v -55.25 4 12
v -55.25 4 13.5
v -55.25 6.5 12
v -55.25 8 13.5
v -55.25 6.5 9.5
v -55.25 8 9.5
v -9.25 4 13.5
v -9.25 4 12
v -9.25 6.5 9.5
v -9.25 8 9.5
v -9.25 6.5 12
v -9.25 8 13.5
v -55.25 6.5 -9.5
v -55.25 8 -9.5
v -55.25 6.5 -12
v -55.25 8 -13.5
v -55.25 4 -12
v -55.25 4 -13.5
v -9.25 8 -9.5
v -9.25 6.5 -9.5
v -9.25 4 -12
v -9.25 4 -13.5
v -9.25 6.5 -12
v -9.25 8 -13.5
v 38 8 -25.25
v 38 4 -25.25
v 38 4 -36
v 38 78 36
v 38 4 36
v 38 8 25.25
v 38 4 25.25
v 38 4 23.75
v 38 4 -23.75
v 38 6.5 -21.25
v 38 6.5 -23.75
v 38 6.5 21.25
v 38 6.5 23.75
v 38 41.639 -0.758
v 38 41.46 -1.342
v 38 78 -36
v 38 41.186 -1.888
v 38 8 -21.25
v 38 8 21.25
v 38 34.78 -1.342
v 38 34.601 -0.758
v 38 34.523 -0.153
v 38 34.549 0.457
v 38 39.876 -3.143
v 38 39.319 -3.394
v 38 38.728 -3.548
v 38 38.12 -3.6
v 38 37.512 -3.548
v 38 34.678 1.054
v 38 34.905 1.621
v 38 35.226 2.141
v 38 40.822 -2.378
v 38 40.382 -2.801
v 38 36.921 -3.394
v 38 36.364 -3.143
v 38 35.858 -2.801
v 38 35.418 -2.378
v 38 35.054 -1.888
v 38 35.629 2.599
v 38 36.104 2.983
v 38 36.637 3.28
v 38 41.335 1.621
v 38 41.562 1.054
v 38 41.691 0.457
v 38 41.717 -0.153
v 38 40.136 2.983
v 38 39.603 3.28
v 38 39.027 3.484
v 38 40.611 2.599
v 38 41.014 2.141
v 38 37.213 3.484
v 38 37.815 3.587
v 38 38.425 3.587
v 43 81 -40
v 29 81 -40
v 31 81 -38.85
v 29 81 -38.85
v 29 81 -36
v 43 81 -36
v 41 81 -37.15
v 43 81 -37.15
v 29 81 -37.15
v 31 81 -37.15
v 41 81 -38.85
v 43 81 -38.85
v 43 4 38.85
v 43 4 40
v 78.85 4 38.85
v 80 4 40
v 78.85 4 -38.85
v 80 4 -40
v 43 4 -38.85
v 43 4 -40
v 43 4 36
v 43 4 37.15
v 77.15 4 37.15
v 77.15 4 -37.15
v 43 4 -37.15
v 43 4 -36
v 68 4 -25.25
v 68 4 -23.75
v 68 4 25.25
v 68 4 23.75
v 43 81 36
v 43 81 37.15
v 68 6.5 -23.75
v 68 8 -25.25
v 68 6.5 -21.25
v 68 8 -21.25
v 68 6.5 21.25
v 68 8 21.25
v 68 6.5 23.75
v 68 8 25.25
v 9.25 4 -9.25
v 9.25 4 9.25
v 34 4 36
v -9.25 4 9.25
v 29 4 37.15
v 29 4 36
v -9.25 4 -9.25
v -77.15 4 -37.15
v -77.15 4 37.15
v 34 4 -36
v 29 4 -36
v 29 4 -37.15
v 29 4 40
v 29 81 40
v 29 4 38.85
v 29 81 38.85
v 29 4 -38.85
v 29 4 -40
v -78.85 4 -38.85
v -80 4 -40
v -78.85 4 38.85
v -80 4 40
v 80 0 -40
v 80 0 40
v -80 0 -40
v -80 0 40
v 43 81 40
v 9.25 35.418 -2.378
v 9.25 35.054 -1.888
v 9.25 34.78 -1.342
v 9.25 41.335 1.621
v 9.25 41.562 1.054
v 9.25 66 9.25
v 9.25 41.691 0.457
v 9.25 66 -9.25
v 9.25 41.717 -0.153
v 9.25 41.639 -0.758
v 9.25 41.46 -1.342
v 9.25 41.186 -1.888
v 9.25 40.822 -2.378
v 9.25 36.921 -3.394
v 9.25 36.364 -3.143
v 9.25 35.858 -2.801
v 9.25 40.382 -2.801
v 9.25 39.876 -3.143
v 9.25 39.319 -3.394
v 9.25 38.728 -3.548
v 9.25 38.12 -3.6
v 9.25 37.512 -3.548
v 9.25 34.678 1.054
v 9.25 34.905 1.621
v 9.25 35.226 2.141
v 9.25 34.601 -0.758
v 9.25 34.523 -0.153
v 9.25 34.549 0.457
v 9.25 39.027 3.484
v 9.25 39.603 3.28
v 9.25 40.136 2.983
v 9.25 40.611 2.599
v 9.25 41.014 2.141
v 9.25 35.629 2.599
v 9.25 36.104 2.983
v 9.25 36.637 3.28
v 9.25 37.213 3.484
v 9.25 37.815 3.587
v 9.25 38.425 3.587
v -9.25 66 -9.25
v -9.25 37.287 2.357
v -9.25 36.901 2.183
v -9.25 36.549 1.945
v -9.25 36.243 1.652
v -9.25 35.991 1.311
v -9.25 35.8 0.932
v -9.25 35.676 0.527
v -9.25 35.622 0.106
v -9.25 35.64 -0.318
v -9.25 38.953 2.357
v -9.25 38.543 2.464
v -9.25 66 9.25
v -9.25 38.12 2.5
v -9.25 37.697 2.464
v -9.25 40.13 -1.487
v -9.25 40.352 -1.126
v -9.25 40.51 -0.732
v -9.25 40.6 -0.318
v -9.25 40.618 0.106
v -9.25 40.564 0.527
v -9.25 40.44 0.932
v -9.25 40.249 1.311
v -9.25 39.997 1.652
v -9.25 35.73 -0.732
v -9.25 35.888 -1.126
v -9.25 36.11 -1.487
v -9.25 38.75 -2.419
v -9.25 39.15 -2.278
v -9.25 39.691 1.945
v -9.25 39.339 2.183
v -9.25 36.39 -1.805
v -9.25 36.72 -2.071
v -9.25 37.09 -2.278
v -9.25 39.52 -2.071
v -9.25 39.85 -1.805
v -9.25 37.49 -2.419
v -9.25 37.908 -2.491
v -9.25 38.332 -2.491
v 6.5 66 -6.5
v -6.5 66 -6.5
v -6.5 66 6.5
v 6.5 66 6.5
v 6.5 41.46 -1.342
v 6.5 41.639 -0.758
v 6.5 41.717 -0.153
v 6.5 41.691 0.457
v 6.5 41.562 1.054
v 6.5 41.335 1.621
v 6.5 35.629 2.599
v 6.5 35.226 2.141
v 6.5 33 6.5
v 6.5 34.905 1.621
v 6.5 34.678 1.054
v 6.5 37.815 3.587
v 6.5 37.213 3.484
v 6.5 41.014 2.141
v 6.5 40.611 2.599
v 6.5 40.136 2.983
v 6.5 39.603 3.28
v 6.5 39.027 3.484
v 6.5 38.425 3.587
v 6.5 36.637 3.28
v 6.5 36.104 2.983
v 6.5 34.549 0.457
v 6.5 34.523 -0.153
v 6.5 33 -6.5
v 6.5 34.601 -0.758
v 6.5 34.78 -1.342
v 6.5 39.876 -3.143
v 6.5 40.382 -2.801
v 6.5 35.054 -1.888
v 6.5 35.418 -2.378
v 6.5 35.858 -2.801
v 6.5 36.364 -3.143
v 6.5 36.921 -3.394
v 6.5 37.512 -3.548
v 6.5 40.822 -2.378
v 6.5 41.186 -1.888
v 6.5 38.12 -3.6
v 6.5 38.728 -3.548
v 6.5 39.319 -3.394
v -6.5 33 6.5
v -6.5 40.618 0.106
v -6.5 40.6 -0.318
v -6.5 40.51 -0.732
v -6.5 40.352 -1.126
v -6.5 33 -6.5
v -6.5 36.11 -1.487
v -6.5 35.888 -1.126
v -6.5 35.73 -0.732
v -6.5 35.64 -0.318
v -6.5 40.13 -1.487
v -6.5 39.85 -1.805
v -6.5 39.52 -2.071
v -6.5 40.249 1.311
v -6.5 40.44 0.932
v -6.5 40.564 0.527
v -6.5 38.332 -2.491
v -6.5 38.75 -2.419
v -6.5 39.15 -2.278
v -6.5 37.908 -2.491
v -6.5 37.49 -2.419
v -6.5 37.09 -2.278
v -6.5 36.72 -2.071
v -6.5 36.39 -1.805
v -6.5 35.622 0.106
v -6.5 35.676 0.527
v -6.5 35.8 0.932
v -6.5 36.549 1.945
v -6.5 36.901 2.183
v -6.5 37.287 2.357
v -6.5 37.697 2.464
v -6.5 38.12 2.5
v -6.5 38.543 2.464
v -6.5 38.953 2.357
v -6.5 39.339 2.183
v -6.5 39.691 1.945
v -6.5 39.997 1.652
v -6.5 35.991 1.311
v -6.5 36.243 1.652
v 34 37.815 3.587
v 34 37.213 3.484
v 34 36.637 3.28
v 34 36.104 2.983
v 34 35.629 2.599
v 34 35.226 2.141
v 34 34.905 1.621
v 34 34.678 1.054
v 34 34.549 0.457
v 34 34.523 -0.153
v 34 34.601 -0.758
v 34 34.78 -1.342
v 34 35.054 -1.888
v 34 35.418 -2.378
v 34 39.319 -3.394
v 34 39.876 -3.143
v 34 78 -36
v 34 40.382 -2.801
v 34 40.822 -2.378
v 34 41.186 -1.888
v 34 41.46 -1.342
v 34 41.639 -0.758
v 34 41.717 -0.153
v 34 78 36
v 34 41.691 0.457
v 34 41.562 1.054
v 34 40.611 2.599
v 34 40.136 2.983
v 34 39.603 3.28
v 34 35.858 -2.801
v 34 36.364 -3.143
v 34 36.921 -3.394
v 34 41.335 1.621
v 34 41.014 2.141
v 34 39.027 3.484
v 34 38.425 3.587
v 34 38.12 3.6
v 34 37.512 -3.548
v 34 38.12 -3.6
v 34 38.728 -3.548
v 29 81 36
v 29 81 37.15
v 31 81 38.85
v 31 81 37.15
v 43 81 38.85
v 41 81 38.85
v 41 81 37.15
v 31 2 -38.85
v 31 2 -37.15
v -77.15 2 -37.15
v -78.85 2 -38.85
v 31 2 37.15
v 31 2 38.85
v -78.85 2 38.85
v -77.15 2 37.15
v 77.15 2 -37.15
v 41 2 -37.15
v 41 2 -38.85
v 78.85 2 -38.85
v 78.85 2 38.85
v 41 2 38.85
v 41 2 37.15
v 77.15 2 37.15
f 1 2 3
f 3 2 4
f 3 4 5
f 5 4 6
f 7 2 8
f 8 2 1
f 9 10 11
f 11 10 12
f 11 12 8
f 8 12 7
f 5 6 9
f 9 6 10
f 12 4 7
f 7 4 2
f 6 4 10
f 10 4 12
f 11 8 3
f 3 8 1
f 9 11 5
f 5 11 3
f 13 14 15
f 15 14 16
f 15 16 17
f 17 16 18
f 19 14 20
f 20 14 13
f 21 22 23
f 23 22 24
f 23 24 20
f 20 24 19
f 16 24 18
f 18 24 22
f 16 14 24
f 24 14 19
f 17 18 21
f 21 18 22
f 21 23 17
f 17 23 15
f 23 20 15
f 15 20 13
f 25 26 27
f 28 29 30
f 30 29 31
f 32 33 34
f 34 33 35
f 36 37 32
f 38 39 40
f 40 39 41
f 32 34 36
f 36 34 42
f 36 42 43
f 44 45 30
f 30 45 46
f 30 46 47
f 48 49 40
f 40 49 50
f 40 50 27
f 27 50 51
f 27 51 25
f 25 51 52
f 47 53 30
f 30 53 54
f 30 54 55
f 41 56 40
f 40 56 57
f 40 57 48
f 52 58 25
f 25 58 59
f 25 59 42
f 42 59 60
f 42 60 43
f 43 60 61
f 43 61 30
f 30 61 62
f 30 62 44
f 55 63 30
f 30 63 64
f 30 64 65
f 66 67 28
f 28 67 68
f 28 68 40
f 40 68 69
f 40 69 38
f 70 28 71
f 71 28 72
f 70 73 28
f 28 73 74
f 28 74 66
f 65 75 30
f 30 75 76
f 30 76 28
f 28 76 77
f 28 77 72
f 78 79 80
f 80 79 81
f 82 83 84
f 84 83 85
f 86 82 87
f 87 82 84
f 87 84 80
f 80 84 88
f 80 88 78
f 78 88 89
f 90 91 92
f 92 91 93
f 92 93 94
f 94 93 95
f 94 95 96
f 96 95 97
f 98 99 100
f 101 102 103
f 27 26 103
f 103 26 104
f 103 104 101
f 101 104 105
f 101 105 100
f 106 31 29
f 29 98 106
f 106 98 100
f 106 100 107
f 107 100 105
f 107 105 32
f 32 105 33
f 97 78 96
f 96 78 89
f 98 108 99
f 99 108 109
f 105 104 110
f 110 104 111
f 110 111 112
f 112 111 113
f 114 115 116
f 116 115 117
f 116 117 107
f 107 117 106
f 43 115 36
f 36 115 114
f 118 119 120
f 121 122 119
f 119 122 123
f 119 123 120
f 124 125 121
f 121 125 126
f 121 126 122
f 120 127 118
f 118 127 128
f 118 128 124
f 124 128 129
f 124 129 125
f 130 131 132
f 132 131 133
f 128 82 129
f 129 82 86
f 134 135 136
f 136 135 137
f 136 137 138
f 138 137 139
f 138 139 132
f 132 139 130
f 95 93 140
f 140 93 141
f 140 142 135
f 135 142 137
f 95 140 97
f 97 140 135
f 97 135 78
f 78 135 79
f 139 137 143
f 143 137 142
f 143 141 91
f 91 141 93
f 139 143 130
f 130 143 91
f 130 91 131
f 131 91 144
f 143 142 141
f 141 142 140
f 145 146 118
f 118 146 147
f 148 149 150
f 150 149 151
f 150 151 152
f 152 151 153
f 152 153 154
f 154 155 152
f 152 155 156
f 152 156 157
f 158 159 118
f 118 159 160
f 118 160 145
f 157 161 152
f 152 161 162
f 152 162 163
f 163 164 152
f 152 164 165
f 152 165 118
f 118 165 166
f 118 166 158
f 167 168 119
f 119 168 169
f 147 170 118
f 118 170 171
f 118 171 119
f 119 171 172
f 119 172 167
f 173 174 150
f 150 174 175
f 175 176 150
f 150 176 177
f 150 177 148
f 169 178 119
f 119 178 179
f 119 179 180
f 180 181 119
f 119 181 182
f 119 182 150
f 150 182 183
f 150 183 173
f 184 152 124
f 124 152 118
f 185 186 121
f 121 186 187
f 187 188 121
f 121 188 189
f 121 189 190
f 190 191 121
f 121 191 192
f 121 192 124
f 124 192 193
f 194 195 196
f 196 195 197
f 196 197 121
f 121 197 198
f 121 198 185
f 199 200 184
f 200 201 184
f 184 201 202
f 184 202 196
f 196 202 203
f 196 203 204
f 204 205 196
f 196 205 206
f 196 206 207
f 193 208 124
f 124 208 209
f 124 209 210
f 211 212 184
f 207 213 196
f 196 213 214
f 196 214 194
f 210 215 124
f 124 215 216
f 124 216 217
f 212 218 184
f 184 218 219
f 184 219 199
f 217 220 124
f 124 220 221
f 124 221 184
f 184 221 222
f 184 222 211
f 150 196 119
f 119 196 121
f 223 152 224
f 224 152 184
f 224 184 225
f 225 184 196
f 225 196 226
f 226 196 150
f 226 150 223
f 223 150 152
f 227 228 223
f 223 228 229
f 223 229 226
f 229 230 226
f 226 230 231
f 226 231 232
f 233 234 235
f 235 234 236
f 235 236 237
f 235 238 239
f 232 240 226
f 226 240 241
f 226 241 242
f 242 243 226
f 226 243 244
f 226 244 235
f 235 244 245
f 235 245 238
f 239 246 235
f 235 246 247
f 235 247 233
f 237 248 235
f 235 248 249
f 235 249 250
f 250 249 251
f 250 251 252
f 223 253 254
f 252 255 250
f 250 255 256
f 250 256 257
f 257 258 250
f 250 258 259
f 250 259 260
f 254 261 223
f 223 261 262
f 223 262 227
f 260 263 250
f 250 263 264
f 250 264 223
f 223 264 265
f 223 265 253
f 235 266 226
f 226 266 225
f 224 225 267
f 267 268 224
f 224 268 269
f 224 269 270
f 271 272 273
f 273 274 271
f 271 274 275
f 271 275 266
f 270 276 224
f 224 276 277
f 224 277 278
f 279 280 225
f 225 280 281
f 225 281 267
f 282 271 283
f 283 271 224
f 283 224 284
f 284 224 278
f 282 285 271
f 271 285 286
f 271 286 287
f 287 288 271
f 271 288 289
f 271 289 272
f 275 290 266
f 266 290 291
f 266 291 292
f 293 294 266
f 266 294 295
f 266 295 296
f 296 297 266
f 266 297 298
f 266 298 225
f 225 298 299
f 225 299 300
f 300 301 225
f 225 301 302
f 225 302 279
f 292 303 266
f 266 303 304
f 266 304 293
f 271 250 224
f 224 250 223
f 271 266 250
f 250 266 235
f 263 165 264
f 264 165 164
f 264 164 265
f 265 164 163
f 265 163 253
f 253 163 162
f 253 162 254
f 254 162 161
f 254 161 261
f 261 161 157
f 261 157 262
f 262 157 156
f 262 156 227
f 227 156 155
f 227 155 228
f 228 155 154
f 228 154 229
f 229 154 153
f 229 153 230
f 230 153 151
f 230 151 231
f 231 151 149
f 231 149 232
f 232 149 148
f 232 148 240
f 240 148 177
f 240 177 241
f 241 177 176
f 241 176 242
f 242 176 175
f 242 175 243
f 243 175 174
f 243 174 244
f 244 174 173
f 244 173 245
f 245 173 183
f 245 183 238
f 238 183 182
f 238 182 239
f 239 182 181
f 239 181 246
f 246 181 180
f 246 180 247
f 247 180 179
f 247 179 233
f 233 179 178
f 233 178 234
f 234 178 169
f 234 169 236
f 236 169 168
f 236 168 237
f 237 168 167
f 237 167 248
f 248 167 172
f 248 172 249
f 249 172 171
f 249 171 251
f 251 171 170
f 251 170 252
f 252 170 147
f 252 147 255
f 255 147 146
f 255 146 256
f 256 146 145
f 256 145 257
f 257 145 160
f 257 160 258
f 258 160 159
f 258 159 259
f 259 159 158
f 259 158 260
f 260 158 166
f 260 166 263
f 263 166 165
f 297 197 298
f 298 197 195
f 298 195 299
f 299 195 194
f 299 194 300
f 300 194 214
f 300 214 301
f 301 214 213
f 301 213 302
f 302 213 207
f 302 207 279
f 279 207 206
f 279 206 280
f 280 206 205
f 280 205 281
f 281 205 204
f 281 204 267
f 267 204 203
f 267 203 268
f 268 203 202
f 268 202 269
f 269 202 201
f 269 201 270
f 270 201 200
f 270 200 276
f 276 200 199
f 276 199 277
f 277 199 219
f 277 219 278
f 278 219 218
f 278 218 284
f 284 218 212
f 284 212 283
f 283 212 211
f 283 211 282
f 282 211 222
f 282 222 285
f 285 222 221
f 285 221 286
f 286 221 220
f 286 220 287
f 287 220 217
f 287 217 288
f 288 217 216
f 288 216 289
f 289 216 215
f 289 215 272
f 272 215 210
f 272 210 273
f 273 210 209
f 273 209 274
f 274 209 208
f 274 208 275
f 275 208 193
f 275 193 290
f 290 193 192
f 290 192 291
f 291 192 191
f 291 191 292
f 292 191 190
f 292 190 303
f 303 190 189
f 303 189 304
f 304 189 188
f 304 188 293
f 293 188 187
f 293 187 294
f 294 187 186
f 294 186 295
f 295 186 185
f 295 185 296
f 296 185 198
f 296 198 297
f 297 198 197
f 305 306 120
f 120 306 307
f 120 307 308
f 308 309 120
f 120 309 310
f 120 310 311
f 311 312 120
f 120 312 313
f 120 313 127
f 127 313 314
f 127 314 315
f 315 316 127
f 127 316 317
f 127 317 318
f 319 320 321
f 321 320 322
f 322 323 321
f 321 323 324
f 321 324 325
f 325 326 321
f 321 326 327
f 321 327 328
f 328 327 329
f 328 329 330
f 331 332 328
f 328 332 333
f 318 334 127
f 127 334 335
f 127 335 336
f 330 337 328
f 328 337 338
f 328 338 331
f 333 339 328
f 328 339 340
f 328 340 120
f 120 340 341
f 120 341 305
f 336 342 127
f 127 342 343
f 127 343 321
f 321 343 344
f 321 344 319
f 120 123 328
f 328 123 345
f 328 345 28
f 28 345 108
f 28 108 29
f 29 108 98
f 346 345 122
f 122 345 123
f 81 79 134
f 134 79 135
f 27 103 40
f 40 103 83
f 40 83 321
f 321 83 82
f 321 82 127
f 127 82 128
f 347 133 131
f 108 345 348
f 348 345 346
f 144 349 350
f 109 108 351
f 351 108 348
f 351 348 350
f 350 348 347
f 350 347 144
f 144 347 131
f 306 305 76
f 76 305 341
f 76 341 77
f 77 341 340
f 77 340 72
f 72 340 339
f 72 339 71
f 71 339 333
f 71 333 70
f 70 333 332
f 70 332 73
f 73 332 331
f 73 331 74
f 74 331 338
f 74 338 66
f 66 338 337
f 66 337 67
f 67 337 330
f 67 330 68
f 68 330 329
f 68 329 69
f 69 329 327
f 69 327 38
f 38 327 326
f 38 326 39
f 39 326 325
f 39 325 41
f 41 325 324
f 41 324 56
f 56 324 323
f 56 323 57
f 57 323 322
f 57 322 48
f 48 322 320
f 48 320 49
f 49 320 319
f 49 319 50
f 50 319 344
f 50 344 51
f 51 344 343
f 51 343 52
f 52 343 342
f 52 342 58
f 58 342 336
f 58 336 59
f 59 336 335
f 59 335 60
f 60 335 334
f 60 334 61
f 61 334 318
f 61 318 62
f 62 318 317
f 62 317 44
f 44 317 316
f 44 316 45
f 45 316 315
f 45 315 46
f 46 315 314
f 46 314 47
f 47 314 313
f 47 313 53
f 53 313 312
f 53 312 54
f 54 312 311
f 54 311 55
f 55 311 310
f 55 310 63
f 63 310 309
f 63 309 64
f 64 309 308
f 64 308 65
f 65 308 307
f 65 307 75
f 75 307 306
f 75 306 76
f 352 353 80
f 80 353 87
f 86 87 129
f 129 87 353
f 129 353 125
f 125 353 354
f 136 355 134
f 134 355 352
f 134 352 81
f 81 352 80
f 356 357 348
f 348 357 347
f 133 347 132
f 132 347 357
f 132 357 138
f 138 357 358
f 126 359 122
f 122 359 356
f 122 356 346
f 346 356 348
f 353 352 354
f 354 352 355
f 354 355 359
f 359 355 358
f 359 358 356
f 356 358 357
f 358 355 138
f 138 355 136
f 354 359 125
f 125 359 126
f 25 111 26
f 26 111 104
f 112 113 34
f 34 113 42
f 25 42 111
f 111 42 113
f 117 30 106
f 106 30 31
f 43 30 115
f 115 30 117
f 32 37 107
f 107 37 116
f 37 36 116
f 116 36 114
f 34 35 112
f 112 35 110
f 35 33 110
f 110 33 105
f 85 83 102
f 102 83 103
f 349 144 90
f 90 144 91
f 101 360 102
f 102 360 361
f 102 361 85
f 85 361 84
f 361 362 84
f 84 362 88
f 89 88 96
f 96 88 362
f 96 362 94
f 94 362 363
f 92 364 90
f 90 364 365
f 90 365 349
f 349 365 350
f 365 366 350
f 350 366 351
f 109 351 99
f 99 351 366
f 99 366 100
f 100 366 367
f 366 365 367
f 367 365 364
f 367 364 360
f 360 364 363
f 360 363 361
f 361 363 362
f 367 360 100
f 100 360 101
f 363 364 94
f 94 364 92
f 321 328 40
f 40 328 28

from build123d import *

# Parameters (mm, degrees)
IZIM1_W                        = 160
IZIM1_H                        = 80
Y_KSEKLIK_EKSTR_ZYON1_DEPTH    = 4
IZIM2_W                        = 18.5
IZIM2_H                        = 18.5
Y_KSEKLIK_EKSTR_ZYON2_DEPTH    = 62
IZIM3_W                        = 13
IZIM3_H                        = 13
KES_EKSTR_ZYON1_DEPTH          = 33
IZIM4_R                        = 3.6
KES_EKSTR_ZYON3_DEPTH          = 9.161851858
IZIM6_R                        = 2.5
KES_EKSTR_ZYON4_DEPTH          = 35
IZIM10_W                       = 5
IZIM10_H                       = 4
Y_KSEKLIK_EKSTR_ZYON5_DEPTH    = 77
IZIM11_R                       = 3.6
KES_EKSTR_ZYON6_DEPTH          = 5
IZIM12_W                       = 2
IZIM12_H                       = 1.7
KES_EKSTR_ZYON7_DEPTH          = 79
IZIM13_W                       = 106.15
IZIM13_H                       = 1.7
IZIM13_W_2                     = 1.7
IZIM13_H_2                     = 74.3
KES_EKSTR_ZYON8_DEPTH          = 2
IZIM14_W                       = 46
IZIM14_H                       = 4
Y_KSEKLIK_EKSTR_ZYON13_DEPTH   = 4
Y_KSEKLIK_EKSTR_ZYON13_2_DEPTH = 4
IZIM15_W                       = 2.5
IZIM15_H                       = 2.5
KES_EKSTR_ZYON9_DEPTH          = 46
IZIM16_W                       = 30
IZIM16_H                       = 4
Y_KSEKLIK_EKSTR_ZYON14_DEPTH   = 4
IZIM17_W                       = 2.5
IZIM17_H                       = 2.5
KES_EKSTR_ZYON10_DEPTH         = 30
IZIM18_W                       = 5
IZIM18_H                       = 4
Y_KSEKLIK_EKSTR_ZYON15_DEPTH   = 77
IZIM20_W                       = 2
IZIM20_H                       = 1.7
KES_EKSTR_ZYON11_DEPTH         = 79
IZIM21_W                       = 34.15
IZIM21_H                       = 1.7
IZIM21_W_2                     = 1.7
IZIM21_H_2                     = 74.3
KES_EKSTR_ZYON12_DEPTH         = 2
IZIM22_W                       = 4
IZIM22_H                       = 72
KES_EKSTR_ZYON13_DEPTH         = 3


with BuildPart() as part:
    # Çizim1 → Yükseklik-Ekstrüzyon1 (new body)
    with BuildSketch(Plane(origin=(0, 0, 0), x_dir=(1, 0, 0), z_dir=(0, 1, 0))):
        Rectangle(IZIM1_W, IZIM1_H)
    extrude(amount=Y_KSEKLIK_EKSTR_ZYON1_DEPTH)

    # Çizim2 → Yükseklik-Ekstrüzyon2 (add)
    with BuildSketch(Plane(origin=(0, 4, 0), x_dir=(1, 0, 0), z_dir=(0, 1, 0))):
        Rectangle(IZIM2_W, IZIM2_H)
    extrude(amount=Y_KSEKLIK_EKSTR_ZYON2_DEPTH)

    # Çizim3 → Kes-Ekstrüzyon1 (cut)
    with BuildSketch(Plane(origin=(0, 66, 0), x_dir=(1, 0, 0), z_dir=(0, 1, 0))):
        Rectangle(IZIM3_W, IZIM3_H)
    extrude(amount=-KES_EKSTR_ZYON1_DEPTH, mode=Mode.SUBTRACT)

    # Çizim4 → Kes-Ekstrüzyon3 (cut)
    with BuildSketch(Plane(origin=(9.25, 0, 0), x_dir=(0, 0, -1), z_dir=(1, 0, 0))):
        with Locations((0, 38.12)):
            Circle(IZIM4_R)
    extrude(amount=-KES_EKSTR_ZYON3_DEPTH, mode=Mode.SUBTRACT)

    # Çizim6 → Kes-Ekstrüzyon4 (cut)
    with BuildSketch(Plane.ZY.offset(9.25)):
        with Locations((0, 38.12)):
            Circle(IZIM6_R)
    extrude(amount=-KES_EKSTR_ZYON4_DEPTH, mode=Mode.SUBTRACT)

    # Çizim10 → Yükseklik-Ekstrüzyon5 (add)
    with BuildSketch(Plane(origin=(0, 4, 0), x_dir=(1, 0, 0), z_dir=(0, 1, 0))):
        Polygon((34, -40), (38, -40), (38, 40), (34, 40), (34, 36), (34, -36), align=None)
        with Locations((31.5, 38)):
            Rectangle(IZIM10_W, IZIM10_H)
        with Locations((31.5, -38)):
            Rectangle(IZIM10_W, IZIM10_H)
    extrude(amount=Y_KSEKLIK_EKSTR_ZYON5_DEPTH)

    # Çizim11 → Kes-Ekstrüzyon6 (cut)
    with BuildSketch(Plane(origin=(38, 0, 0), x_dir=(0, 0, -1), z_dir=(1, 0, 0))):
        with Locations((0, 38.12)):
            Circle(IZIM11_R)
    extrude(amount=-KES_EKSTR_ZYON6_DEPTH, mode=Mode.SUBTRACT)

    # Çizim12 → Kes-Ekstrüzyon7 (cut)
    with BuildSketch(Plane(origin=(0, 81, 0), x_dir=(1, 0, 0), z_dir=(0, 1, 0))):
        with Locations((30, -38)):
            Rectangle(IZIM12_W, IZIM12_H)
        with Locations((30, 38)):
            Rectangle(IZIM12_W, IZIM12_H)
    extrude(amount=-KES_EKSTR_ZYON7_DEPTH, mode=Mode.SUBTRACT)

    # Çizim13 → Kes-Ekstrüzyon8 (cut)
    with BuildSketch(Plane(origin=(0, 4, 0), x_dir=(1, 0, 0), z_dir=(0, 1, 0))):
        with Locations((-24.075, -38)):
            Rectangle(IZIM13_W, IZIM13_H)
        with Locations((-78, 0)):
            Rectangle(IZIM13_W_2, IZIM13_H_2)
        with Locations((-78, -38)):
            Rectangle(IZIM13_W_2, IZIM13_H)
        with Locations((-24.075, 38)):
            Rectangle(IZIM13_W, IZIM13_H)
        with Locations((-78, 38)):
            Rectangle(IZIM13_W_2, IZIM13_H)
    extrude(amount=-KES_EKSTR_ZYON8_DEPTH, mode=Mode.SUBTRACT)

    # Çizim16 → Yükseklik-Ekstrüzyon14 (add)
    with BuildSketch(Plane(origin=(0, 4, 0), x_dir=(1, 0, 0), z_dir=(0, 1, 0))):
        with Locations((53, 23.25)):
            Rectangle(IZIM16_W, IZIM16_H)
        with Locations((53, -23.25)):
            Rectangle(IZIM16_W, IZIM16_H)
    extrude(amount=Y_KSEKLIK_EKSTR_ZYON14_DEPTH)

    # Çizim17 → Kes-Ekstrüzyon10 (cut)
    with BuildSketch(Plane(origin=(68, 0, 0), x_dir=(0, 0, -1), z_dir=(1, 0, 0))):
        with Locations((-22.5, 5.25)):
            Rectangle(IZIM17_W, IZIM17_H)
        with Locations((22.5, 5.25)):
            Rectangle(IZIM17_W, IZIM17_H)
    extrude(amount=-KES_EKSTR_ZYON10_DEPTH, mode=Mode.SUBTRACT)

    # Çizim18 → Yükseklik-Ekstrüzyon15 (add)
    with BuildSketch(Plane(origin=(0, 4, 0), x_dir=(1, 0, 0), z_dir=(0, 1, 0))):
        with Locations((40.5, 38)):
            Rectangle(IZIM18_W, IZIM18_H)
        with Locations((40.5, -38)):
            Rectangle(IZIM18_W, IZIM18_H)
    extrude(amount=Y_KSEKLIK_EKSTR_ZYON15_DEPTH)

    # Çizim20 → Kes-Ekstrüzyon11 (cut)
    with BuildSketch(Plane(origin=(0, 81, 0), x_dir=(1, 0, 0), z_dir=(0, 1, 0))):
        with Locations((42, -38)):
            Rectangle(IZIM20_W, IZIM20_H)
        with Locations((42, 38)):
            Rectangle(IZIM20_W, IZIM20_H)
    extrude(amount=-KES_EKSTR_ZYON11_DEPTH, mode=Mode.SUBTRACT)

    # Çizim21 → Kes-Ekstrüzyon12 (cut)
    with BuildSketch(Plane(origin=(0, 4, 0), x_dir=(1, 0, 0), z_dir=(0, 1, 0))):
        with Locations((60.075, -38)):
            Rectangle(IZIM21_W, IZIM21_H)
        with Locations((78, -38)):
            Rectangle(IZIM21_W_2, IZIM21_H)
        with Locations((78, 0)):
            Rectangle(IZIM21_W_2, IZIM21_H_2)
        with Locations((60.075, 38)):
            Rectangle(IZIM21_W, IZIM21_H)
        with Locations((78, 38)):
            Rectangle(IZIM21_W_2, IZIM21_H)
    extrude(amount=-KES_EKSTR_ZYON12_DEPTH, mode=Mode.SUBTRACT)

    # Çizim22 → Kes-Ekstrüzyon13 (cut)
    with BuildSketch(Plane(origin=(0, 81, 0), x_dir=(1, 0, 0), z_dir=(0, 1, 0))):
        with Locations((36, 0)):
            Rectangle(IZIM22_W, IZIM22_H)
    extrude(amount=-KES_EKSTR_ZYON13_DEPTH, mode=Mode.SUBTRACT)


with BuildPart() as body_2:
    # Çizim14 → Yükseklik-Ekstrüzyon13 (new body)
    with BuildSketch(Plane(origin=(0, 4, 0), x_dir=(1, 0, 0), z_dir=(0, 1, 0))):
        with Locations((-32.25, -11.5)):
            Rectangle(IZIM14_W, IZIM14_H)
    extrude(amount=Y_KSEKLIK_EKSTR_ZYON13_DEPTH)


with BuildPart() as body_3:
    # Çizim14 → Y_kseklik-Ekstr_zyon13 2 (new body)
    with BuildSketch(Plane(origin=(0, 4, 0), x_dir=(1, 0, 0), z_dir=(0, 1, 0))):
        with Locations((-32.25, 11.5)):
            Rectangle(IZIM14_W, IZIM14_H)
    extrude(amount=Y_KSEKLIK_EKSTR_ZYON13_2_DEPTH)


with BuildPart() as kes_ekstr_zyon9_tool:
    # Çizim15 → Kes-Ekstrüzyon9 (new body)
    with BuildSketch(Plane.ZY.offset(55.25)):
        with Locations((-10.75, 5.25)):
            Rectangle(IZIM15_W, IZIM15_H)
        with Locations((10.75, 5.25)):
            Rectangle(IZIM15_W, IZIM15_H)
    extrude(amount=-KES_EKSTR_ZYON9_DEPTH)


with BuildPart() as body_2_1:
    add(body_2.part)

    # Kes-Ekstrüzyon9: cut by kes_ekstr_zyon9_tool
    add(kes_ekstr_zyon9_tool.part, mode=Mode.SUBTRACT)


with BuildPart() as body_3_1:
    add(body_3.part)

    # Kes-Ekstrüzyon9: cut by kes_ekstr_zyon9_tool
    add(kes_ekstr_zyon9_tool.part, mode=Mode.SUBTRACT)


solid = Compound([part.part, body_2_1.part, body_3_1.part])
